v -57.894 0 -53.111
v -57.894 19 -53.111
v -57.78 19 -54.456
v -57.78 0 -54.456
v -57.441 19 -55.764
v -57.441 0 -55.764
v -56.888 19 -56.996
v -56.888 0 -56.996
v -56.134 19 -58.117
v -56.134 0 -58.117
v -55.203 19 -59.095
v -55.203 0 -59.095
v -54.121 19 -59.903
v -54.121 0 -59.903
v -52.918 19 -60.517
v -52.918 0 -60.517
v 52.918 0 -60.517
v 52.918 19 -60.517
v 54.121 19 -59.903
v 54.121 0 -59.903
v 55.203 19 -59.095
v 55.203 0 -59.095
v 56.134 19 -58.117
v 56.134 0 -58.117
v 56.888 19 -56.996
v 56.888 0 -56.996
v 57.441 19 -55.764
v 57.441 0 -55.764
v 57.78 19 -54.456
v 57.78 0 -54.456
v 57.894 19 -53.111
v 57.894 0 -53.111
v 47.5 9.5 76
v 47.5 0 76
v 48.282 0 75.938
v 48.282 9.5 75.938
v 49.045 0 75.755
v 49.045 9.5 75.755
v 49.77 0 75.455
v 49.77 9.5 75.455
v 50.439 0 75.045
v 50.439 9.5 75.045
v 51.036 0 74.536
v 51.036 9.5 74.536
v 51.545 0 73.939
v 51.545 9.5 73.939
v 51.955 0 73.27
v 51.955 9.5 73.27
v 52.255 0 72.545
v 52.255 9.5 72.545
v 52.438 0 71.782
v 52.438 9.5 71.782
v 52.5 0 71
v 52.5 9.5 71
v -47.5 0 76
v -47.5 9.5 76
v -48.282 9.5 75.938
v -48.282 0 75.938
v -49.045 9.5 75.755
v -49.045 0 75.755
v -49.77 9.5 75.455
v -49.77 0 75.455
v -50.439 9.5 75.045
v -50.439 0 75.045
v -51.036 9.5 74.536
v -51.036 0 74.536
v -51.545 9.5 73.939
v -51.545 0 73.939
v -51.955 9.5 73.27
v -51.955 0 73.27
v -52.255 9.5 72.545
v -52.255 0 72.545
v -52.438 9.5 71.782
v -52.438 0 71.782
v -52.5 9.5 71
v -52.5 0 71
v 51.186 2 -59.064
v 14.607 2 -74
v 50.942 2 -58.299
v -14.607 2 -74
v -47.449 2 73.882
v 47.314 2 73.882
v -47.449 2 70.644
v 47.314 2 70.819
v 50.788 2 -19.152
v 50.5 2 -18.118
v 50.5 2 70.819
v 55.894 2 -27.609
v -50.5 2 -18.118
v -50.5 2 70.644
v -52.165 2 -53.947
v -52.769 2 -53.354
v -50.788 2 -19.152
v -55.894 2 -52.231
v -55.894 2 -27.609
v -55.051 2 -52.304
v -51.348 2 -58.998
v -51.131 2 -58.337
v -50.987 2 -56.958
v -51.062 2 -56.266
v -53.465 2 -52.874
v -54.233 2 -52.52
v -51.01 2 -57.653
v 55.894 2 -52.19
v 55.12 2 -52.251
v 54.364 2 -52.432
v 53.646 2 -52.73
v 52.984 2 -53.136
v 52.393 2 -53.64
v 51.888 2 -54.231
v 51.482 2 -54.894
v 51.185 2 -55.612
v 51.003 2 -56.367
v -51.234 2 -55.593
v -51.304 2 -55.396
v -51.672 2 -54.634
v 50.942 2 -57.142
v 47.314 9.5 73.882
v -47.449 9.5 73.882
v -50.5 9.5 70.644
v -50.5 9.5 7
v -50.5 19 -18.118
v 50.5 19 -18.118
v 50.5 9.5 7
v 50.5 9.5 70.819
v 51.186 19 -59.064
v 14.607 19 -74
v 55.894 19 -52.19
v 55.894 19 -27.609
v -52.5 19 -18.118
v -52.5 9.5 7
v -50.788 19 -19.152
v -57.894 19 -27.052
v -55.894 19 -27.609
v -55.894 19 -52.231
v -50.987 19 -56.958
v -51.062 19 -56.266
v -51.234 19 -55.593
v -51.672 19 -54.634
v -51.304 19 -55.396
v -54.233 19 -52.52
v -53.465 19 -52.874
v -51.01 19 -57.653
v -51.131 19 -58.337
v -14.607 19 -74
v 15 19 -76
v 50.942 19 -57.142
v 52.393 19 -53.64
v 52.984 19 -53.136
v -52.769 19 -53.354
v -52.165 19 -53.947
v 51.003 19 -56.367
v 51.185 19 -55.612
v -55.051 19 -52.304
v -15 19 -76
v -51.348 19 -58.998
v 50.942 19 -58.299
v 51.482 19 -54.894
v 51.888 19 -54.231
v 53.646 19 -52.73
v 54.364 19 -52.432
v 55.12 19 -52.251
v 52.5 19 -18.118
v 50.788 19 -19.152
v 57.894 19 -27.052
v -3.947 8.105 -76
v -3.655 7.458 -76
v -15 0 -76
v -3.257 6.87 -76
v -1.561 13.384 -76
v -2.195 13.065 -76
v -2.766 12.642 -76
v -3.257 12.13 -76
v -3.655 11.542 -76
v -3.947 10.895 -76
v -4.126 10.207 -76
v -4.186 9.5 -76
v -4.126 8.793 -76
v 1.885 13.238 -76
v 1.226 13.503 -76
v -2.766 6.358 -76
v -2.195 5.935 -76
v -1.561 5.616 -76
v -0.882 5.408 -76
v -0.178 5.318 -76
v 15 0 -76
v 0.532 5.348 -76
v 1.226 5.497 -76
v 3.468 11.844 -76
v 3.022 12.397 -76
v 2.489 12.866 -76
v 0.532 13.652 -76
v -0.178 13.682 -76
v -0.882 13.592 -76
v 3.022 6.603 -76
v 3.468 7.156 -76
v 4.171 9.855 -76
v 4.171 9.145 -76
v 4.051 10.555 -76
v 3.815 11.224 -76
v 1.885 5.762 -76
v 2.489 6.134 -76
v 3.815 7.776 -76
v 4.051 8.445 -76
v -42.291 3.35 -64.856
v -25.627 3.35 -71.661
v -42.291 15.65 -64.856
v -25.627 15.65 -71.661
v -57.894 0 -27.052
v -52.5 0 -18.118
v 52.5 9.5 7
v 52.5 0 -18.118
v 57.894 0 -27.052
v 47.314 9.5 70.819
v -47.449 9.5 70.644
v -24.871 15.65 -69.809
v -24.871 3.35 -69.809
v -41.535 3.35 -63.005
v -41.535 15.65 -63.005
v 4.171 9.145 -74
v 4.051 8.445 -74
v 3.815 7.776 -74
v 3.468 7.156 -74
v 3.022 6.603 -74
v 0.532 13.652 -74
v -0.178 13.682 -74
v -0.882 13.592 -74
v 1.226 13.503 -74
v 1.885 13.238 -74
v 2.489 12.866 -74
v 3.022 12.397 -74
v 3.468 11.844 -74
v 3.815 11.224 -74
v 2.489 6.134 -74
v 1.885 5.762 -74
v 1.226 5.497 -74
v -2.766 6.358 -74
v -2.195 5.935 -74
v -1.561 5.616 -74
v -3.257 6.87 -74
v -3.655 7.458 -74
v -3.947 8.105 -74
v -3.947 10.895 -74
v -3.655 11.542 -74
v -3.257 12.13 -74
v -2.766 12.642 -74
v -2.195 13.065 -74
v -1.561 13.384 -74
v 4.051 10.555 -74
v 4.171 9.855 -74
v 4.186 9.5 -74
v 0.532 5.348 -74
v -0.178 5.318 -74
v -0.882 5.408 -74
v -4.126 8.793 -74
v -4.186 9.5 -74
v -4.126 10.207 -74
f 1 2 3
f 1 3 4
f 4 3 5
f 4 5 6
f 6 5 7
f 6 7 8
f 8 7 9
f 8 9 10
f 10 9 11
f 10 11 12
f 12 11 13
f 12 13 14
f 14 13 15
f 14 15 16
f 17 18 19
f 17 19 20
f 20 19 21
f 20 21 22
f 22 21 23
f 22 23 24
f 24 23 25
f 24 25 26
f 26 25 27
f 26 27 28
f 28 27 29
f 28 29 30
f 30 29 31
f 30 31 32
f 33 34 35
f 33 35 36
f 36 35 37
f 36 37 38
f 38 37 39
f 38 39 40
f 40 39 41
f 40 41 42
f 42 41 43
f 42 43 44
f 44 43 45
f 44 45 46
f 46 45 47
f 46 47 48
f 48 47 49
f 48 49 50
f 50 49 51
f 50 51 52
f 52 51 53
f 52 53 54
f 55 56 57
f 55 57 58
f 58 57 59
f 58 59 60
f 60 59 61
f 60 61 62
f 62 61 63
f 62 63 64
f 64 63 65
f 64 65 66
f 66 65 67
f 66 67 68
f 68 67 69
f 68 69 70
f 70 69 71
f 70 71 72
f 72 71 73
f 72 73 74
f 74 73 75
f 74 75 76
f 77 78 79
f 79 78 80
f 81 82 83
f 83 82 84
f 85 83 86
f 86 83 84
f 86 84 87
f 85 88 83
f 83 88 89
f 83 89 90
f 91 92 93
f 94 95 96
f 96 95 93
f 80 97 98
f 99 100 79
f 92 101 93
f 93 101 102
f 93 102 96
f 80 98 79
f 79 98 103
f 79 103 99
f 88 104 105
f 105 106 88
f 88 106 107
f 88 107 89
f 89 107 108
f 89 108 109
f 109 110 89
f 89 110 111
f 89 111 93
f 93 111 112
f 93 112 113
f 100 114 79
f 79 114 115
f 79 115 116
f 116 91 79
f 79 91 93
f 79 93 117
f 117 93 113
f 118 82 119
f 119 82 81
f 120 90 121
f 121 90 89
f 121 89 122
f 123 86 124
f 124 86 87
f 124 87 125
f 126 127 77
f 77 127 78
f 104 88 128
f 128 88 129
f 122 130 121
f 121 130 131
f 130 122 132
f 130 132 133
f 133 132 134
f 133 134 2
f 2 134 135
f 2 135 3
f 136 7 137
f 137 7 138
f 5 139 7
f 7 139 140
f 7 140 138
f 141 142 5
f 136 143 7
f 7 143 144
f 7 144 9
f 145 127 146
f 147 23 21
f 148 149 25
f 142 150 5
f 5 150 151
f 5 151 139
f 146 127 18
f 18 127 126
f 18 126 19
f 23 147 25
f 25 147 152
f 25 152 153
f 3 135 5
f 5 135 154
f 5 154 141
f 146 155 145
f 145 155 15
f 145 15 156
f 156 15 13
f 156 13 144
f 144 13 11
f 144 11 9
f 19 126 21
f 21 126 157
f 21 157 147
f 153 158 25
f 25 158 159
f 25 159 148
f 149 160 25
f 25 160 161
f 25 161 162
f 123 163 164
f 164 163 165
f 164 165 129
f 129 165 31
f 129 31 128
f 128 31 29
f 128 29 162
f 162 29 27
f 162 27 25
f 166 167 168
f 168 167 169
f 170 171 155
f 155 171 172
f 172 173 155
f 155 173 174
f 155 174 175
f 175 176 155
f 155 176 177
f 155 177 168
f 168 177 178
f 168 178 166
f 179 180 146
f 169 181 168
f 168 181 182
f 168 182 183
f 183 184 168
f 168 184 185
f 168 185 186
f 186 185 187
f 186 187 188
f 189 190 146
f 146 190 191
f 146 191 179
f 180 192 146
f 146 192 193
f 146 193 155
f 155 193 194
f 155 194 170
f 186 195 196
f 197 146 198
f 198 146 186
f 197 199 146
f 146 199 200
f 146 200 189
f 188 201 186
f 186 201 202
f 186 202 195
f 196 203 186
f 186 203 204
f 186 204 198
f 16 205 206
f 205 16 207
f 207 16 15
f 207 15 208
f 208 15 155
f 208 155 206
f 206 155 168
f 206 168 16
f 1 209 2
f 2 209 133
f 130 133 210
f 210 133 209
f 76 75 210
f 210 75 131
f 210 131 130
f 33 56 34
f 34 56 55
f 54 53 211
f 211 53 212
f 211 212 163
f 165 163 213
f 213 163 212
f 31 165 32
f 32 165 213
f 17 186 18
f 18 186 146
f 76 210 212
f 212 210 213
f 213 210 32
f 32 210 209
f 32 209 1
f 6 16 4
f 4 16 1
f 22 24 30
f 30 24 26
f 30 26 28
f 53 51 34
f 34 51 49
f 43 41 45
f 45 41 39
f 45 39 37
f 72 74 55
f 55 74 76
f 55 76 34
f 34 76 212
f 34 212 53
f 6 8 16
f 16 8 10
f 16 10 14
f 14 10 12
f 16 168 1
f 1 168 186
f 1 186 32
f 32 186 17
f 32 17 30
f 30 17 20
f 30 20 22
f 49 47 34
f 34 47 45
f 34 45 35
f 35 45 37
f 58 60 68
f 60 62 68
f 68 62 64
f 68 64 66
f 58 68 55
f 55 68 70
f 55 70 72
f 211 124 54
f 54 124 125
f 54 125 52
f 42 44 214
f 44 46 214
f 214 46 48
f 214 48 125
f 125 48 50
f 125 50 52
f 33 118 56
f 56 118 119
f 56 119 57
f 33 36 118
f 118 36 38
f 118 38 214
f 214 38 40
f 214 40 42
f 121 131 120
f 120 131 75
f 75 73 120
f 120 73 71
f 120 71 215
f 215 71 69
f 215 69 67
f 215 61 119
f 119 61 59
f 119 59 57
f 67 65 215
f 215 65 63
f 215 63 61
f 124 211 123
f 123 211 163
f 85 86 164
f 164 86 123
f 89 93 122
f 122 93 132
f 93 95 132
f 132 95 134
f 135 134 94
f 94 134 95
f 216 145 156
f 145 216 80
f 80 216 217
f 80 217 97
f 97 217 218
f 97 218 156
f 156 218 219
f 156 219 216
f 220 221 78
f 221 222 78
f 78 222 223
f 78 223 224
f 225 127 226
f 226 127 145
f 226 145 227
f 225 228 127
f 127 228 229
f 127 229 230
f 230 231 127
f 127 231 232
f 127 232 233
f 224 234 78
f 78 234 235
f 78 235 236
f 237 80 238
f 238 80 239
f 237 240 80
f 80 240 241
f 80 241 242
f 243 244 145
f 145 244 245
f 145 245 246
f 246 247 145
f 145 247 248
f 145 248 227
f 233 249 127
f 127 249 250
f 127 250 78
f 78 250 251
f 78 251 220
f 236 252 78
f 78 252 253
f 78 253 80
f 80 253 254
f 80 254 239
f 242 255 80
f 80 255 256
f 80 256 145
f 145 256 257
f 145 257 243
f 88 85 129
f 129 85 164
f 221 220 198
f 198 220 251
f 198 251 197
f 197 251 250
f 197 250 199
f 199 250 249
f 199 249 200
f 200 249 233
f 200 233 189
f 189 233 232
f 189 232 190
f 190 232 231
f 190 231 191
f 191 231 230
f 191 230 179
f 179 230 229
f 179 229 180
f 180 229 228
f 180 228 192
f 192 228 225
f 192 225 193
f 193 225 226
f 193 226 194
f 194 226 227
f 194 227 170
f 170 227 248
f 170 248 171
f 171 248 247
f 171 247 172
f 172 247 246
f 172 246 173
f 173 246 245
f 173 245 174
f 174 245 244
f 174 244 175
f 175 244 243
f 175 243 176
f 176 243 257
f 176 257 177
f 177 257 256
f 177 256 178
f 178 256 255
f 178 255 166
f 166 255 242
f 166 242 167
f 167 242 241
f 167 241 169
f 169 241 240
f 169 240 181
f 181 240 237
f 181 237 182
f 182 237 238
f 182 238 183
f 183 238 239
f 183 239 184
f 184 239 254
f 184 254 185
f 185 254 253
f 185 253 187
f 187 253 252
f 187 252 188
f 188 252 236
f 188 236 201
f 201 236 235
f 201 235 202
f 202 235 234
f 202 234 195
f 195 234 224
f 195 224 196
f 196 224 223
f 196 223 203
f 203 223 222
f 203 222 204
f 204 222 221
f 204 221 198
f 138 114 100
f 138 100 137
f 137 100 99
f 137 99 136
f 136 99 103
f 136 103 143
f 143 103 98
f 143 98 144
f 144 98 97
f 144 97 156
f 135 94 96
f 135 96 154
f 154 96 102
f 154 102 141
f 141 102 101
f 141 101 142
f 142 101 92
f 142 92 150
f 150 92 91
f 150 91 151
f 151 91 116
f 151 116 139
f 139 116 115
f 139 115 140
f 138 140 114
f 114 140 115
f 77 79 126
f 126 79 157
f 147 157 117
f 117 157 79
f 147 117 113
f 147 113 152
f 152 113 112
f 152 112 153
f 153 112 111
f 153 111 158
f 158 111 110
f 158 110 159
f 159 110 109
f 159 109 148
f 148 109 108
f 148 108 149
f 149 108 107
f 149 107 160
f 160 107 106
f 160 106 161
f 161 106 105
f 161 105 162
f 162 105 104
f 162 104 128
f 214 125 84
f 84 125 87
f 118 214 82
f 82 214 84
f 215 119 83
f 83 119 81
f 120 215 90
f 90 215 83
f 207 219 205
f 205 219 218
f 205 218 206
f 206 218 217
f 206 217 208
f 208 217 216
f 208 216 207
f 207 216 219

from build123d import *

# Parameters (mm, degrees)
SKETCH2_W           = 105
SKETCH2_H           = 25.118100445
BOSS_EXTRUDE2_DEPTH = 19
CUT_EXTRUDE13_DEPTH = 119
CUT_EXTRUDE15_DEPTH = 17
CUT_EXTRUDE17_DEPTH = 92
SKETCH8_R           = 4.186209529
CUT_EXTRUDE18_DEPTH = 92
BOSS_EXTRUDE3_DEPTH = 17
BOSS_EXTRUDE4_DEPTH = 17
SKETCH13_W          = 3.185616736
SKETCH13_H          = 3.062466768
BOSS_EXTRUDE6_DEPTH = 7.5
SKETCH14_W          = 3.051402249
SKETCH14_H          = 3.23810325
BOSS_EXTRUDE7_DEPTH = 7.5
FILLET1_R           = 5
FILLET2_R           = 5
FILLET5_R           = 8
FILLET6_R           = 8
SKETCH18_W          = 18
SKETCH18_H          = 12.3
CUT_EXTRUDE19_DEPTH = 15


with BuildPart() as part:
    # Sketch2 → Boss-Extrude2 (new body)
    with BuildSketch(Plane(origin=(0, 0, 0), x_dir=(1, 0, 0), z_dir=(0, 1, 0))):
        Polygon((-15, 76), (15, 76), (57.894125565, 58.485388954), (57.894125565, 27.051844623), (52.5, 18.118100445), (-52.5, 18.118100445), (-57.894125565, 27.051844623), (-57.894125565, 58.485388954), align=None)
        Polygon((52.5, -7), (-52.5, -7), (-52.5, -76), (0, -76), (15, -76), (52.5, -76), align=None)
        with Locations((0, 5.559050222)):
            Rectangle(SKETCH2_W, SKETCH2_H)
    extrude(amount=BOSS_EXTRUDE2_DEPTH)

    # Sketch4 → Cut-Extrude13 (cut)
    with BuildSketch(Plane(origin=(52.5, 0, 0), x_dir=(0, 0, -1), z_dir=(1, 0, 0))):
        Polygon((-76, 19), (-76, 9.5), (-7, 9.5), (18.118100445, 19), align=None)
    extrude(amount=-CUT_EXTRUDE13_DEPTH, mode=Mode.SUBTRACT)

    # Sketch5 → Cut-Extrude15 (cut)
    with BuildSketch(Plane(origin=(0, 19, 0), x_dir=(1, 0, 0), z_dir=(0, 1, 0))):
        Polygon((14.607411336, 74), (-14.607411336, 74), (-55.894125565, 57.141730213), (-55.894125565, 27.608811041), (-50.787885255, 19.151862072), (-50.5, 18.118100445), (50.5, 18.118100445), (50.787885255, 19.151862072), (55.894125565, 27.608811041), (55.894125565, 57.141730213), align=None)
    extrude(amount=-CUT_EXTRUDE15_DEPTH, mode=Mode.SUBTRACT)

    # Sketch7 → Cut-Extrude17 (cut)
    with BuildSketch(Plane(origin=(0, 0, -18.118100445), x_dir=(-1, 0, 0), z_dir=(0, 0, -1))):
        Polygon((50.5, 19), (50.5, 2), (11.545363278, 2), (-50.5, 2), (-50.5, 19), align=None)
    extrude(amount=-CUT_EXTRUDE17_DEPTH, mode=Mode.SUBTRACT)

    # Sketch8 → Cut-Extrude18 (cut)
    with BuildSketch(Plane(origin=(0, 0, -76), x_dir=(-1, 0, 0), z_dir=(0, 0, -1))):
        with Locations((0, 9.5)):
            Circle(SKETCH8_R)
    extrude(amount=-CUT_EXTRUDE18_DEPTH, mode=Mode.SUBTRACT)

    # Sketch11 → Boss-Extrude3 (add)
    with BuildSketch(Plane(origin=(0, 2, 0), x_dir=(1, 0, 0), z_dir=(0, 1, 0))):
        with BuildLine():
            Line((-51.347688624, 58.998140004), (-55.894125565, 57.141730213))
            Line((-55.894125565, 57.141730213), (-55.894125565, 52.230890552))
            ThreePointArc((-55.894125565, 52.230890552), (-53.106377647, 53.09885899), (-51.304073105, 55.395945406))
            Line((-51.304073105, 55.395945406), (-51.233975943, 55.592746134))
            ThreePointArc((-51.233975943, 55.592746134), (-50.986021462, 57.305621291), (-51.347688624, 58.998140004))
        make_face()
    extrude(amount=BOSS_EXTRUDE3_DEPTH)

    # Sketch12 → Boss-Extrude4 (add)
    with BuildSketch(Plane(origin=(0, 2, 0), x_dir=(1, 0, 0), z_dir=(0, 1, 0))):
        with BuildLine():
            Line((50.942379366, 58.29851863), (50.942379366, 57.141730213))
            ThreePointArc((50.942379366, 57.141730213), (52.392712249, 53.640316897), (55.894125565, 52.189984014))
            Line((55.894125565, 52.189984014), (55.894125565, 57.141730213))
            Line((55.894125565, 57.141730213), (51.18638565, 59.064003541))
            ThreePointArc((51.18638565, 59.064003541), (51.049240656, 58.686087709), (50.942379366, 58.29851863))
        make_face()
    extrude(amount=BOSS_EXTRUDE4_DEPTH)

    # Sketch13 → Boss-Extrude6 (add)
    with BuildSketch(Plane(origin=(0, 2, 0), x_dir=(1, 0, 0), z_dir=(0, 1, 0))):
        with Locations((48.907191632, -72.350666171)):
            Rectangle(SKETCH13_W, SKETCH13_H)
    extrude(amount=BOSS_EXTRUDE6_DEPTH)

    # Sketch14 → Boss-Extrude7 (add)
    with BuildSketch(Plane(origin=(0, 2, 0), x_dir=(1, 0, 0), z_dir=(0, 1, 0))):
        with Locations((-48.974298875, -72.26284793)):
            Rectangle(SKETCH14_W, SKETCH14_H)
    extrude(amount=BOSS_EXTRUDE7_DEPTH)

    # Fillet1
    fillet1_edges = [part.edges().sort_by_distance(p)[0] for p in [
        (-52.5, 4.75, 76),
    ]]
    fillet(fillet1_edges, radius=FILLET1_R)

    # Fillet2
    fillet2_edges = [part.edges().sort_by_distance(p)[0] for p in [
        (52.5, 4.75, 76),
    ]]
    fillet(fillet2_edges, radius=FILLET2_R)

    # Fillet5
    fillet5_edges = [part.edges().sort_by_distance(p)[0] for p in [
        (57.894125565, 9.5, -58.485388954),
    ]]
    fillet(fillet5_edges, radius=FILLET5_R)

    # Fillet6
    fillet6_edges = [part.edges().sort_by_distance(p)[0] for p in [
        (-57.894125565, 9.5, -58.485388954),
    ]]
    fillet(fillet6_edges, radius=FILLET6_R)

    # Sketch18 → Cut-Extrude19 (cut)
    with BuildSketch(Plane(origin=(-28.741404632, 0, -70.389083489), x_dir=(-0.925796249814304, 0, 0.37802288797078276), z_dir=(-0.37802288797078276, 0, -0.925796249814304))):
        with Locations((5.635958996, 9.5)):
            Rectangle(SKETCH18_W, SKETCH18_H)
    extrude(amount=-CUT_EXTRUDE19_DEPTH, mode=Mode.SUBTRACT)


solid = part.part
